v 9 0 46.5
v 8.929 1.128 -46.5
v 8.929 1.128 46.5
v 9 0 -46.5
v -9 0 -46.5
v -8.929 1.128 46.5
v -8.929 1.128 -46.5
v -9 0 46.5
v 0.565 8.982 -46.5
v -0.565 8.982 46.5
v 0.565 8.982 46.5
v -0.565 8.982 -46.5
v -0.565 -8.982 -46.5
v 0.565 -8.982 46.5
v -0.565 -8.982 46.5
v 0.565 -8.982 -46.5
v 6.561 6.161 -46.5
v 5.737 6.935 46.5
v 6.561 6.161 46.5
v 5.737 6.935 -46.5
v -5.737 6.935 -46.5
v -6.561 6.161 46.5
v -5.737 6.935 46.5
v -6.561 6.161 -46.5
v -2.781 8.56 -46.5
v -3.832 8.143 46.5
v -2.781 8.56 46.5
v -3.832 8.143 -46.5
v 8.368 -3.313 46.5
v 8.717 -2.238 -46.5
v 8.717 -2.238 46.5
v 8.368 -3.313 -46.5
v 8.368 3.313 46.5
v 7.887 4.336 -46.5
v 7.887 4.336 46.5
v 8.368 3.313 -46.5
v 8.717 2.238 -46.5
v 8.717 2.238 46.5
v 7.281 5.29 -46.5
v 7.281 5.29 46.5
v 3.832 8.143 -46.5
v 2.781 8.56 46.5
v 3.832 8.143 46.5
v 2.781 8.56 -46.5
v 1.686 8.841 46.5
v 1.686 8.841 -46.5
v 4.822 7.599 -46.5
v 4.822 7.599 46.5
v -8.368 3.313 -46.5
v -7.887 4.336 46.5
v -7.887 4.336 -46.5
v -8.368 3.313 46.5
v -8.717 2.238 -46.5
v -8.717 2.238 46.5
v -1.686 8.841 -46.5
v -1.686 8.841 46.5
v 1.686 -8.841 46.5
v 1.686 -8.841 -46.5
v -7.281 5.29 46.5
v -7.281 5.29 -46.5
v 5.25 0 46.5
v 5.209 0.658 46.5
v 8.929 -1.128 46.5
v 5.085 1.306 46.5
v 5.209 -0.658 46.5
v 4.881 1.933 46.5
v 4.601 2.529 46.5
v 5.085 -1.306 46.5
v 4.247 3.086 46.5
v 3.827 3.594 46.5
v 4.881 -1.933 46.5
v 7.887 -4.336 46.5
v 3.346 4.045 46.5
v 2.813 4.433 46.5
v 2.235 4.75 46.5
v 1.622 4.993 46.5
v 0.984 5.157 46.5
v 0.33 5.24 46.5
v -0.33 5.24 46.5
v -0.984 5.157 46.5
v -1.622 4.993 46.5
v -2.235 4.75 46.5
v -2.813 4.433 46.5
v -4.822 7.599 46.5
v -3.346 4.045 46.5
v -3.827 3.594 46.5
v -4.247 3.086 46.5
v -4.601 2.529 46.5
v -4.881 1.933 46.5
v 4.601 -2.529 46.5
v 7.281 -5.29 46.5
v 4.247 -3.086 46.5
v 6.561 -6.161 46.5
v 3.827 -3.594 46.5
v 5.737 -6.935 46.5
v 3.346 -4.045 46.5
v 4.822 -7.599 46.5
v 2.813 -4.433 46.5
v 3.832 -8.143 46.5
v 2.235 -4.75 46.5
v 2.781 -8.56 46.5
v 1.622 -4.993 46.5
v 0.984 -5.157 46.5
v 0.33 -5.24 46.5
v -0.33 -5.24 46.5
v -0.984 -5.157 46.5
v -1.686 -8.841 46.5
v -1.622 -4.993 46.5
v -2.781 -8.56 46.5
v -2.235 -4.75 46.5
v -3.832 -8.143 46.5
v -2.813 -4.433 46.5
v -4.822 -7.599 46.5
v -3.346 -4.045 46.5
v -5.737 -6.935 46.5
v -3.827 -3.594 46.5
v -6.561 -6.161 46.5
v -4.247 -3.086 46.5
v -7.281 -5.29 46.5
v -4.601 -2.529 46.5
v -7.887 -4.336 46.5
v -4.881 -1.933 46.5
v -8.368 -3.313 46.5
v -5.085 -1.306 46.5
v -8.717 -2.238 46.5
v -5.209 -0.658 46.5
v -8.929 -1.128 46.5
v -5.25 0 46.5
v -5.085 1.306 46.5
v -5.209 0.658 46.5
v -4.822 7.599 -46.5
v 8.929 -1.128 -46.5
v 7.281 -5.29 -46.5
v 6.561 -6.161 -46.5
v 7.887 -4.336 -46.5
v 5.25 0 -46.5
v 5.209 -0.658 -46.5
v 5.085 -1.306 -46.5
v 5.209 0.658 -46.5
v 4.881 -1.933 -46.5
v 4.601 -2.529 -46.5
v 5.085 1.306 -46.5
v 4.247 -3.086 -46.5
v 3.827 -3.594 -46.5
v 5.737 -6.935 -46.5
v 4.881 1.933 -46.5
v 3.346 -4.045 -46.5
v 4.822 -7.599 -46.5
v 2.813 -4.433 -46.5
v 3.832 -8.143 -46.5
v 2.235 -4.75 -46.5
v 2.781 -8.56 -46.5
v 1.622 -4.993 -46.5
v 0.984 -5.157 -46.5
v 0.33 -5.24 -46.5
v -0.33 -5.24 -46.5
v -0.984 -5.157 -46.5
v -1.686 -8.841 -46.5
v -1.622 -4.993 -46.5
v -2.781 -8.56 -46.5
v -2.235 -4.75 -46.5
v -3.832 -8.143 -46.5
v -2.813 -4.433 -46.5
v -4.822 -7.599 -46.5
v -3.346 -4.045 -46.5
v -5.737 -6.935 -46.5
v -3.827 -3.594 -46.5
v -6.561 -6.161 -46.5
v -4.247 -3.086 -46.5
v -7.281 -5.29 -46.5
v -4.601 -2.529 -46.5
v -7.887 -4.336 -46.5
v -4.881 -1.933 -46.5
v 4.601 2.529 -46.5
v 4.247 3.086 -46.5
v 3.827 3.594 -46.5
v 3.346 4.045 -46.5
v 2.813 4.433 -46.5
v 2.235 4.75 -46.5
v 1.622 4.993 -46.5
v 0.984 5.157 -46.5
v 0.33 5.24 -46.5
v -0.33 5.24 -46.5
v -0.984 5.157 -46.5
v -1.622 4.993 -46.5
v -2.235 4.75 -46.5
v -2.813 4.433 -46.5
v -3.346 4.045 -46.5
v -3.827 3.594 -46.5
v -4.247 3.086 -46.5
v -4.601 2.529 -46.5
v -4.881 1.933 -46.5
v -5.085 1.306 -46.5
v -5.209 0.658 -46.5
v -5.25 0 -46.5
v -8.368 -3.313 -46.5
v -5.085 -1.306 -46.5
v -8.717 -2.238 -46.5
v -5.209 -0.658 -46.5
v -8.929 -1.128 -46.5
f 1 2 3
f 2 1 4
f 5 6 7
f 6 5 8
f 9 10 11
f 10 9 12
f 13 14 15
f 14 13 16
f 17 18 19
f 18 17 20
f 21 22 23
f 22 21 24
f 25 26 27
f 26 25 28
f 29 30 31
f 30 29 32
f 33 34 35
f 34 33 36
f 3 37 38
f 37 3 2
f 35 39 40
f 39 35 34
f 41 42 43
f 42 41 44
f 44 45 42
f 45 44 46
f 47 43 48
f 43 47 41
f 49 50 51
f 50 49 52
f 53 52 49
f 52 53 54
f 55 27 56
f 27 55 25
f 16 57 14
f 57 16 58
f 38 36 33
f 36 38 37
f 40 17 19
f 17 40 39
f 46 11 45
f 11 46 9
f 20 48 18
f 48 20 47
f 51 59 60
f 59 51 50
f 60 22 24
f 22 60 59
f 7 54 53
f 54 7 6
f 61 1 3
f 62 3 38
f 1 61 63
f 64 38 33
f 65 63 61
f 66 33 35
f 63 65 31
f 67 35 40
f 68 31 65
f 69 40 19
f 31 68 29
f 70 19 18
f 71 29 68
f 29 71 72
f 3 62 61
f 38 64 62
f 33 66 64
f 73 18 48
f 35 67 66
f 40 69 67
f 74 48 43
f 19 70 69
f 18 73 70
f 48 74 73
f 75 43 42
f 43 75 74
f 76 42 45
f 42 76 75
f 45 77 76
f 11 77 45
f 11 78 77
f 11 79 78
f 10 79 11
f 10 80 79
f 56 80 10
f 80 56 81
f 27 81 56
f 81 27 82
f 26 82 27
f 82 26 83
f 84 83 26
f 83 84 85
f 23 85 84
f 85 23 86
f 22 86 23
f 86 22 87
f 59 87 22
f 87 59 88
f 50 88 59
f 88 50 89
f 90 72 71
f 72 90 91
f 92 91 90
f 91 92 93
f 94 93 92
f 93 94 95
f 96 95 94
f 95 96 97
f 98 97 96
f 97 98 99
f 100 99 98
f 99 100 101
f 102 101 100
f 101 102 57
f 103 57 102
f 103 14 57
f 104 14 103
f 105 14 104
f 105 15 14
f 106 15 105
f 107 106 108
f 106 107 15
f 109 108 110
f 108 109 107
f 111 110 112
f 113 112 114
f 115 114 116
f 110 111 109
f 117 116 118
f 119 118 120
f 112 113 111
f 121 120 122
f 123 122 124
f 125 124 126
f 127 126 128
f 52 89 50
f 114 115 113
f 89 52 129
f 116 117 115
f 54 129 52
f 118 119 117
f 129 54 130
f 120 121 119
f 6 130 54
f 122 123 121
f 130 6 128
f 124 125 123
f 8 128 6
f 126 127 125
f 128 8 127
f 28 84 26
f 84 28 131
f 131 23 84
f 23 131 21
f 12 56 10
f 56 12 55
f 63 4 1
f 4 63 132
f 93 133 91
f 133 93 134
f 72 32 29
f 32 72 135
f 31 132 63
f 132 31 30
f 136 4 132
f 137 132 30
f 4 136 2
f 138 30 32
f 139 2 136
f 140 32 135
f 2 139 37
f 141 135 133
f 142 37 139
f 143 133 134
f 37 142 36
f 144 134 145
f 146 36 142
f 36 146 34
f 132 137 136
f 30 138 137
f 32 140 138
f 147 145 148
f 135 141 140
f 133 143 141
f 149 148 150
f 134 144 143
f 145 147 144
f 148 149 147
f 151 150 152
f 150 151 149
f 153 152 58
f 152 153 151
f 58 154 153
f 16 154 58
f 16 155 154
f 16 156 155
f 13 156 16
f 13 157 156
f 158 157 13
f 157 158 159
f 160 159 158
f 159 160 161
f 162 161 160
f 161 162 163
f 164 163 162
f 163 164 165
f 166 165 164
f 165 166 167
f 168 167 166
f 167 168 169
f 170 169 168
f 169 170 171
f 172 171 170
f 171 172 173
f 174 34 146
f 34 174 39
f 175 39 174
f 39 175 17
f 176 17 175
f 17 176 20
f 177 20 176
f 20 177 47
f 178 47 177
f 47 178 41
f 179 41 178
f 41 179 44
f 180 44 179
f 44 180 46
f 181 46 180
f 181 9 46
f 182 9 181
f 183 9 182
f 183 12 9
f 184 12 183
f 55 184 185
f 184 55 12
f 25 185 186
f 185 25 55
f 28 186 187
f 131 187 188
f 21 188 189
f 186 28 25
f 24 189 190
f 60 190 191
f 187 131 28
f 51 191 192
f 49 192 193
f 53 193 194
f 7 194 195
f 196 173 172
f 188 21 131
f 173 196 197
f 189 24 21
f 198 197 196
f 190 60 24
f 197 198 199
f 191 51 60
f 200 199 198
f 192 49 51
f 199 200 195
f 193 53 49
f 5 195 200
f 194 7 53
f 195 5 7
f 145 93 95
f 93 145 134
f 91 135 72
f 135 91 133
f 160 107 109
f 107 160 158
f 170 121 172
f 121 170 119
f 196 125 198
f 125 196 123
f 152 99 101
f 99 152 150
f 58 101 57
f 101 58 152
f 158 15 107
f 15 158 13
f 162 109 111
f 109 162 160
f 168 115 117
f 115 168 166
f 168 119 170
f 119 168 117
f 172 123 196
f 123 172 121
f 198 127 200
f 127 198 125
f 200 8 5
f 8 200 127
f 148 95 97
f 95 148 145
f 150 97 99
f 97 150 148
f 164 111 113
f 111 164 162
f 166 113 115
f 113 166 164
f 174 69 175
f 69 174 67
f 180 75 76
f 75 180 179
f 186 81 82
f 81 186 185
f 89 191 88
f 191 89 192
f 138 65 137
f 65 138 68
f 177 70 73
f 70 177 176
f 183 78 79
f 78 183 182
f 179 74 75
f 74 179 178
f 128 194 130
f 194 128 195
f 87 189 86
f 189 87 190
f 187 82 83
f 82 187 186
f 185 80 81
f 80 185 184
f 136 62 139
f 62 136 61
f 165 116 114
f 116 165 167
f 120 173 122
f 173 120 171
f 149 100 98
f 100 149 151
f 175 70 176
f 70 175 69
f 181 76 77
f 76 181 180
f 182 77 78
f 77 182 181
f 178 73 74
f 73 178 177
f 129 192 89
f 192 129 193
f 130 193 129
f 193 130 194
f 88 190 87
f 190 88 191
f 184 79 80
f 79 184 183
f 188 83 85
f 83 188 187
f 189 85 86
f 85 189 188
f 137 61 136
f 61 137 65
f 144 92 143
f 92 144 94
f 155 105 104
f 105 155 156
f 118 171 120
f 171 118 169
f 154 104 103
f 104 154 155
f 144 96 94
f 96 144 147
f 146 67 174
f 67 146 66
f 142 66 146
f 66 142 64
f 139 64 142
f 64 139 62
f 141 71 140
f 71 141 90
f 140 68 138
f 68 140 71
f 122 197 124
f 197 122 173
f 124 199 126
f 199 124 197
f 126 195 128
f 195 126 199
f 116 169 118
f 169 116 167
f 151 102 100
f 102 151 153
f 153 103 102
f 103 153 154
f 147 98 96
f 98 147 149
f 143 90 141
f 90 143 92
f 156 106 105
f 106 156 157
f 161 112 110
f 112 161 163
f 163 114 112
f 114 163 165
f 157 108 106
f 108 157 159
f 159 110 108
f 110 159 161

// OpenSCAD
$fn = 50;


difference() {
	union() {
		translate(v = [0, 0, -46.5000000000]) {
			cylinder(h = 93, r = 9.0000000000);
		}
	}
	union() {
		translate(v = [0, 0, -100.0000000000]) {
			cylinder(h = 200, r = 5.2500000000);
		}
	}
}
